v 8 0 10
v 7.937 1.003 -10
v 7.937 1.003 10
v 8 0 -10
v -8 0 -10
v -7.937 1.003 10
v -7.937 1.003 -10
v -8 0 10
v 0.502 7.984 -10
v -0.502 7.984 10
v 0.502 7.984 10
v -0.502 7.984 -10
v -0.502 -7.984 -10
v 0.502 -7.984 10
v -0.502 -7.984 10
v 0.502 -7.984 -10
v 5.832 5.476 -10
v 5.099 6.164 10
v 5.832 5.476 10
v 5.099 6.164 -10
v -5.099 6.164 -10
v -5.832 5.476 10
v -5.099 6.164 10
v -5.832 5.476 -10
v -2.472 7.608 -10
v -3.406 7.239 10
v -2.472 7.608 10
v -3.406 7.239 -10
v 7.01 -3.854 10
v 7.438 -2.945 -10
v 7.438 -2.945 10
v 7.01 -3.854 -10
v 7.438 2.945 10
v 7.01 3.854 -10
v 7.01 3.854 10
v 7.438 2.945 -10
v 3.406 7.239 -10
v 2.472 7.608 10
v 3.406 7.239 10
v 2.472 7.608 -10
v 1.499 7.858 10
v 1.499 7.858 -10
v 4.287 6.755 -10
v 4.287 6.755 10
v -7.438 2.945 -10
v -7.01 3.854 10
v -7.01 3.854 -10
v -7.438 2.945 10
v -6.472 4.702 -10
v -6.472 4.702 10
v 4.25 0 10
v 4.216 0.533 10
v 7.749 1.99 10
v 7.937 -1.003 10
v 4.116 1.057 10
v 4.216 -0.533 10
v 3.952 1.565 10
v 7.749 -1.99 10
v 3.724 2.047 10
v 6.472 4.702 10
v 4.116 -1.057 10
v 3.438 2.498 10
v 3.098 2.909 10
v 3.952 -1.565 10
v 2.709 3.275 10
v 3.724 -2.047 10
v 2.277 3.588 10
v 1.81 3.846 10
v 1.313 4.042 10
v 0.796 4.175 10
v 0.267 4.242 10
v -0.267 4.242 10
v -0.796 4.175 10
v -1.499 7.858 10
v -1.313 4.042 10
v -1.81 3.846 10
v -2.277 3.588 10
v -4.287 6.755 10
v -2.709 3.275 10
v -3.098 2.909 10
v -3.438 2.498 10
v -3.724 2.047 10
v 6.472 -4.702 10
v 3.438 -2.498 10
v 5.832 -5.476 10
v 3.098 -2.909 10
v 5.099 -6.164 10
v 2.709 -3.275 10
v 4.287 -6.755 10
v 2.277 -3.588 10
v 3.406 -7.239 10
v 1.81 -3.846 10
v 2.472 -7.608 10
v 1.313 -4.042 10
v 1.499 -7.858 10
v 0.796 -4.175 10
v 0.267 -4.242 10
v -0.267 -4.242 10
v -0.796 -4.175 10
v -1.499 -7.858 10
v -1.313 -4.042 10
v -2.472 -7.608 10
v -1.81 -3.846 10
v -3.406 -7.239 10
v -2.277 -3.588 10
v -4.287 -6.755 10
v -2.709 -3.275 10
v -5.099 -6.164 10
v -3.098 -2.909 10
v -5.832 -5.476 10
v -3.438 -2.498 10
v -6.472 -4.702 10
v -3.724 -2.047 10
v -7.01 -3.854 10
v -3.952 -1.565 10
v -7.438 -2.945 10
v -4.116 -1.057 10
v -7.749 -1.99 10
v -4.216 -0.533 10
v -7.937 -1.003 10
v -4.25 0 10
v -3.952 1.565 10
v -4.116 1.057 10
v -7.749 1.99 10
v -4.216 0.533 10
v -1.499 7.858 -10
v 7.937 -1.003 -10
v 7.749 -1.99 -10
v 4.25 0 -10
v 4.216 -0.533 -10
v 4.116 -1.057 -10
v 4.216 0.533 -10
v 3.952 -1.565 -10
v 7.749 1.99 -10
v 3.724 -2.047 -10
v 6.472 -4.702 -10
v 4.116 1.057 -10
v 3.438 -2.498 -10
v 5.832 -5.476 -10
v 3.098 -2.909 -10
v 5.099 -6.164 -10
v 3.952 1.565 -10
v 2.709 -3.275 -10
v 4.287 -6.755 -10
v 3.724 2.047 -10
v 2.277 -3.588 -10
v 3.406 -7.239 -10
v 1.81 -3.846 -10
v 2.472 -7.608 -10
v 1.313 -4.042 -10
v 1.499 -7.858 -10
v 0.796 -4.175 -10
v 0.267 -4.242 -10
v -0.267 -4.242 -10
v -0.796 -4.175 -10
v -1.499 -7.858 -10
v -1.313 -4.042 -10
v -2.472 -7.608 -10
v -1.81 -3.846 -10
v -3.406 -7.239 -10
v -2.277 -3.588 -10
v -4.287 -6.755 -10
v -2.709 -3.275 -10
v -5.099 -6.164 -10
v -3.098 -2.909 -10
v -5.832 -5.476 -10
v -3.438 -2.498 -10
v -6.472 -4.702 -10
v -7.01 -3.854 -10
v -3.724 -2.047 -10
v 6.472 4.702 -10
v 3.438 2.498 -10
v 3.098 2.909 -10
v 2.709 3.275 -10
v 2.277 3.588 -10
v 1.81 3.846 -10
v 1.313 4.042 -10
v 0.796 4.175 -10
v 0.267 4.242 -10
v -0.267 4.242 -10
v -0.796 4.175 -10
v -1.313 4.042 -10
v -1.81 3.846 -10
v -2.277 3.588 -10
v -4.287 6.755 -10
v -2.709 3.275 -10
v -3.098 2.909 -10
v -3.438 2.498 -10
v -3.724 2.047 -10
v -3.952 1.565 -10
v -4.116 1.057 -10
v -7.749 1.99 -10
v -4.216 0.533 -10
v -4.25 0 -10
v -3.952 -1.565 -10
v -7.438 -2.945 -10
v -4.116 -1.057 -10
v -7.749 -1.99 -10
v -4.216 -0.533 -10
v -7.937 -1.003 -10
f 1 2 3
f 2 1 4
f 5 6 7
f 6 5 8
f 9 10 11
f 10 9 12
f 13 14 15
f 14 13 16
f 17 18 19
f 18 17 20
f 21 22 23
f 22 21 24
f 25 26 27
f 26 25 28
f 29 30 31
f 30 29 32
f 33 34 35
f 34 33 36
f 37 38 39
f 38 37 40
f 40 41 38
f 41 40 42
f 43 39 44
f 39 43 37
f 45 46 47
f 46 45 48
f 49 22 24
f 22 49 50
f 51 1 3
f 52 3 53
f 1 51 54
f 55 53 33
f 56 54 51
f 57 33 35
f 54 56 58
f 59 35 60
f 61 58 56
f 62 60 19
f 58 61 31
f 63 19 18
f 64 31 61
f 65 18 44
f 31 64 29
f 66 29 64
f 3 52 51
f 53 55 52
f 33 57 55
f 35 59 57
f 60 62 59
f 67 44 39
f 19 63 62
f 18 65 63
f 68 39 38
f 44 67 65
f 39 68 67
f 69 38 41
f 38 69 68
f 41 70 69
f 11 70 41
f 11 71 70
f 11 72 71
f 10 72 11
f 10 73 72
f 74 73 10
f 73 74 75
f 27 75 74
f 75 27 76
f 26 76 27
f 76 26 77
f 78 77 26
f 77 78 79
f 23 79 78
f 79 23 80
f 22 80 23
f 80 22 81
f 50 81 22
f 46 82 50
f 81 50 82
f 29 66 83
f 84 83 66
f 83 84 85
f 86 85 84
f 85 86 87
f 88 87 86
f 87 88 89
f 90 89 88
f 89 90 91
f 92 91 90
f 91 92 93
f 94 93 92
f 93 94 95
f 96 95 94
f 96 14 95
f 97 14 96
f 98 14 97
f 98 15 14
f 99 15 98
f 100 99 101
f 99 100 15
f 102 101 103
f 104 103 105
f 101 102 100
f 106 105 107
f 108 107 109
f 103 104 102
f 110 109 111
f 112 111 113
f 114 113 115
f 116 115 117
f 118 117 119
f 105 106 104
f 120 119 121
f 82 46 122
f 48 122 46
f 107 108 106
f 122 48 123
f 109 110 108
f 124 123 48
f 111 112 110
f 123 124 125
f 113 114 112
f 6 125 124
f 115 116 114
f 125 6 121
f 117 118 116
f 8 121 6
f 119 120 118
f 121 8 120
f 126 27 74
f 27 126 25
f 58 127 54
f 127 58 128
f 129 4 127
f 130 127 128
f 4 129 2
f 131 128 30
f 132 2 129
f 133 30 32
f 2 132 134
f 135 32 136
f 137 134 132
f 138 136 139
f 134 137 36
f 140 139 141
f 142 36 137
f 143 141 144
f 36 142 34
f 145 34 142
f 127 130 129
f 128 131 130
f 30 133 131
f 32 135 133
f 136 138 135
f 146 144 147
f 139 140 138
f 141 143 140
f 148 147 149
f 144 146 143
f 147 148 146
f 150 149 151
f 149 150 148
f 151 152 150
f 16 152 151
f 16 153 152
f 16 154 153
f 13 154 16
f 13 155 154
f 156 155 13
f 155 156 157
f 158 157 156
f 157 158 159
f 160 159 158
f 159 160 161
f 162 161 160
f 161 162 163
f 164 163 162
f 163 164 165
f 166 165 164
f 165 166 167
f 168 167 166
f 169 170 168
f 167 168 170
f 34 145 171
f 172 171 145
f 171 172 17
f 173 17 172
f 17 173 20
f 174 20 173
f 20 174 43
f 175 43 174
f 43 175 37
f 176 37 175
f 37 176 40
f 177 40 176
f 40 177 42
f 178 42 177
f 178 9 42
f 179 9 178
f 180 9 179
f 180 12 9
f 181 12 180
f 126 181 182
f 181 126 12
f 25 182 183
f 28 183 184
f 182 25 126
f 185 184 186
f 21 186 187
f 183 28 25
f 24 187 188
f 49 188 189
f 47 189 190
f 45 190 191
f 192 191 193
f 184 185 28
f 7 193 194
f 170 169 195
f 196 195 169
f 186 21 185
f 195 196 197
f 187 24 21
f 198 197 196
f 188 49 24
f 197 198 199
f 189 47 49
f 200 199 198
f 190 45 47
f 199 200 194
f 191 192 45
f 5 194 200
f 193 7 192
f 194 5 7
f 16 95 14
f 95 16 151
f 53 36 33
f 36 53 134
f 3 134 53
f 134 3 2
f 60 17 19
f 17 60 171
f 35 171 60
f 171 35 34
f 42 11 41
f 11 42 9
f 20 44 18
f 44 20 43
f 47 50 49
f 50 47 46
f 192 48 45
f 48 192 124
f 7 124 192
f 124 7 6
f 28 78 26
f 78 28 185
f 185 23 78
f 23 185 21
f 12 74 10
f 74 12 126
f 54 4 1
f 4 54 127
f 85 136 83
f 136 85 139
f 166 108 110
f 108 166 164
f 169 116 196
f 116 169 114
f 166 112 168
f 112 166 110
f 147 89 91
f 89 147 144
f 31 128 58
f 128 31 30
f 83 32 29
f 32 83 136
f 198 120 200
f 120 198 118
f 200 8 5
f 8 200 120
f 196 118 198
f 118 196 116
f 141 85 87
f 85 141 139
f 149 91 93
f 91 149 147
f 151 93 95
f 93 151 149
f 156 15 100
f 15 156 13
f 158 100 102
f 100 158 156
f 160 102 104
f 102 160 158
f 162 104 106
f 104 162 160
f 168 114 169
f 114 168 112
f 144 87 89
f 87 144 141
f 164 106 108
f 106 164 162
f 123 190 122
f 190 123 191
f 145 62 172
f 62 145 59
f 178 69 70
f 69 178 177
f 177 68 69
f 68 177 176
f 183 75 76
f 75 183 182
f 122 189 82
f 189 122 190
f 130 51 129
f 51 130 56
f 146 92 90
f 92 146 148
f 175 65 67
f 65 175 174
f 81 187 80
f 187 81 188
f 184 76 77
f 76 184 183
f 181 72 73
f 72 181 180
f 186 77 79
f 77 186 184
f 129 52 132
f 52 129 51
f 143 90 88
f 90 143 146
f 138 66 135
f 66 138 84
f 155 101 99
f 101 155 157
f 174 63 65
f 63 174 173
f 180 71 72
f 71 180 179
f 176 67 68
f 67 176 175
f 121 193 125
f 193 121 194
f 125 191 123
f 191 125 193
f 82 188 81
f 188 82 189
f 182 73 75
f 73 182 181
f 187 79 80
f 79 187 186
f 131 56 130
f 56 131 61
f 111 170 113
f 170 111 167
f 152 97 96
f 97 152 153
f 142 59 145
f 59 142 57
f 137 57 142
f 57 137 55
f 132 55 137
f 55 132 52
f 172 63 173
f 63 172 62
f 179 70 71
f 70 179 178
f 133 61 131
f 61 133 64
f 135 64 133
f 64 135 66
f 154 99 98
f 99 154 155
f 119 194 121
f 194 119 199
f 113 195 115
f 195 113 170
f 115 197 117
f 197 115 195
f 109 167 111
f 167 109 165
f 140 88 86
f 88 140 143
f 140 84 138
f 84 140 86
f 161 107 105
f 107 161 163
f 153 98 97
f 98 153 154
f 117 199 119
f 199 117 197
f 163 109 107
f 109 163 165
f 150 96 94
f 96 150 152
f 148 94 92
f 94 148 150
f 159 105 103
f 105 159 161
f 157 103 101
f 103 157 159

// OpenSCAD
$fn = 50;


difference() {
	union() {
		translate(v = [0, 0, -10.0000000000]) {
			cylinder(h = 20, r = 8.0000000000);
		}
	}
	union() {
		translate(v = [0, 0, -100.0000000000]) {
			cylinder(h = 200, r = 4.2500000000);
		}
	}
}
